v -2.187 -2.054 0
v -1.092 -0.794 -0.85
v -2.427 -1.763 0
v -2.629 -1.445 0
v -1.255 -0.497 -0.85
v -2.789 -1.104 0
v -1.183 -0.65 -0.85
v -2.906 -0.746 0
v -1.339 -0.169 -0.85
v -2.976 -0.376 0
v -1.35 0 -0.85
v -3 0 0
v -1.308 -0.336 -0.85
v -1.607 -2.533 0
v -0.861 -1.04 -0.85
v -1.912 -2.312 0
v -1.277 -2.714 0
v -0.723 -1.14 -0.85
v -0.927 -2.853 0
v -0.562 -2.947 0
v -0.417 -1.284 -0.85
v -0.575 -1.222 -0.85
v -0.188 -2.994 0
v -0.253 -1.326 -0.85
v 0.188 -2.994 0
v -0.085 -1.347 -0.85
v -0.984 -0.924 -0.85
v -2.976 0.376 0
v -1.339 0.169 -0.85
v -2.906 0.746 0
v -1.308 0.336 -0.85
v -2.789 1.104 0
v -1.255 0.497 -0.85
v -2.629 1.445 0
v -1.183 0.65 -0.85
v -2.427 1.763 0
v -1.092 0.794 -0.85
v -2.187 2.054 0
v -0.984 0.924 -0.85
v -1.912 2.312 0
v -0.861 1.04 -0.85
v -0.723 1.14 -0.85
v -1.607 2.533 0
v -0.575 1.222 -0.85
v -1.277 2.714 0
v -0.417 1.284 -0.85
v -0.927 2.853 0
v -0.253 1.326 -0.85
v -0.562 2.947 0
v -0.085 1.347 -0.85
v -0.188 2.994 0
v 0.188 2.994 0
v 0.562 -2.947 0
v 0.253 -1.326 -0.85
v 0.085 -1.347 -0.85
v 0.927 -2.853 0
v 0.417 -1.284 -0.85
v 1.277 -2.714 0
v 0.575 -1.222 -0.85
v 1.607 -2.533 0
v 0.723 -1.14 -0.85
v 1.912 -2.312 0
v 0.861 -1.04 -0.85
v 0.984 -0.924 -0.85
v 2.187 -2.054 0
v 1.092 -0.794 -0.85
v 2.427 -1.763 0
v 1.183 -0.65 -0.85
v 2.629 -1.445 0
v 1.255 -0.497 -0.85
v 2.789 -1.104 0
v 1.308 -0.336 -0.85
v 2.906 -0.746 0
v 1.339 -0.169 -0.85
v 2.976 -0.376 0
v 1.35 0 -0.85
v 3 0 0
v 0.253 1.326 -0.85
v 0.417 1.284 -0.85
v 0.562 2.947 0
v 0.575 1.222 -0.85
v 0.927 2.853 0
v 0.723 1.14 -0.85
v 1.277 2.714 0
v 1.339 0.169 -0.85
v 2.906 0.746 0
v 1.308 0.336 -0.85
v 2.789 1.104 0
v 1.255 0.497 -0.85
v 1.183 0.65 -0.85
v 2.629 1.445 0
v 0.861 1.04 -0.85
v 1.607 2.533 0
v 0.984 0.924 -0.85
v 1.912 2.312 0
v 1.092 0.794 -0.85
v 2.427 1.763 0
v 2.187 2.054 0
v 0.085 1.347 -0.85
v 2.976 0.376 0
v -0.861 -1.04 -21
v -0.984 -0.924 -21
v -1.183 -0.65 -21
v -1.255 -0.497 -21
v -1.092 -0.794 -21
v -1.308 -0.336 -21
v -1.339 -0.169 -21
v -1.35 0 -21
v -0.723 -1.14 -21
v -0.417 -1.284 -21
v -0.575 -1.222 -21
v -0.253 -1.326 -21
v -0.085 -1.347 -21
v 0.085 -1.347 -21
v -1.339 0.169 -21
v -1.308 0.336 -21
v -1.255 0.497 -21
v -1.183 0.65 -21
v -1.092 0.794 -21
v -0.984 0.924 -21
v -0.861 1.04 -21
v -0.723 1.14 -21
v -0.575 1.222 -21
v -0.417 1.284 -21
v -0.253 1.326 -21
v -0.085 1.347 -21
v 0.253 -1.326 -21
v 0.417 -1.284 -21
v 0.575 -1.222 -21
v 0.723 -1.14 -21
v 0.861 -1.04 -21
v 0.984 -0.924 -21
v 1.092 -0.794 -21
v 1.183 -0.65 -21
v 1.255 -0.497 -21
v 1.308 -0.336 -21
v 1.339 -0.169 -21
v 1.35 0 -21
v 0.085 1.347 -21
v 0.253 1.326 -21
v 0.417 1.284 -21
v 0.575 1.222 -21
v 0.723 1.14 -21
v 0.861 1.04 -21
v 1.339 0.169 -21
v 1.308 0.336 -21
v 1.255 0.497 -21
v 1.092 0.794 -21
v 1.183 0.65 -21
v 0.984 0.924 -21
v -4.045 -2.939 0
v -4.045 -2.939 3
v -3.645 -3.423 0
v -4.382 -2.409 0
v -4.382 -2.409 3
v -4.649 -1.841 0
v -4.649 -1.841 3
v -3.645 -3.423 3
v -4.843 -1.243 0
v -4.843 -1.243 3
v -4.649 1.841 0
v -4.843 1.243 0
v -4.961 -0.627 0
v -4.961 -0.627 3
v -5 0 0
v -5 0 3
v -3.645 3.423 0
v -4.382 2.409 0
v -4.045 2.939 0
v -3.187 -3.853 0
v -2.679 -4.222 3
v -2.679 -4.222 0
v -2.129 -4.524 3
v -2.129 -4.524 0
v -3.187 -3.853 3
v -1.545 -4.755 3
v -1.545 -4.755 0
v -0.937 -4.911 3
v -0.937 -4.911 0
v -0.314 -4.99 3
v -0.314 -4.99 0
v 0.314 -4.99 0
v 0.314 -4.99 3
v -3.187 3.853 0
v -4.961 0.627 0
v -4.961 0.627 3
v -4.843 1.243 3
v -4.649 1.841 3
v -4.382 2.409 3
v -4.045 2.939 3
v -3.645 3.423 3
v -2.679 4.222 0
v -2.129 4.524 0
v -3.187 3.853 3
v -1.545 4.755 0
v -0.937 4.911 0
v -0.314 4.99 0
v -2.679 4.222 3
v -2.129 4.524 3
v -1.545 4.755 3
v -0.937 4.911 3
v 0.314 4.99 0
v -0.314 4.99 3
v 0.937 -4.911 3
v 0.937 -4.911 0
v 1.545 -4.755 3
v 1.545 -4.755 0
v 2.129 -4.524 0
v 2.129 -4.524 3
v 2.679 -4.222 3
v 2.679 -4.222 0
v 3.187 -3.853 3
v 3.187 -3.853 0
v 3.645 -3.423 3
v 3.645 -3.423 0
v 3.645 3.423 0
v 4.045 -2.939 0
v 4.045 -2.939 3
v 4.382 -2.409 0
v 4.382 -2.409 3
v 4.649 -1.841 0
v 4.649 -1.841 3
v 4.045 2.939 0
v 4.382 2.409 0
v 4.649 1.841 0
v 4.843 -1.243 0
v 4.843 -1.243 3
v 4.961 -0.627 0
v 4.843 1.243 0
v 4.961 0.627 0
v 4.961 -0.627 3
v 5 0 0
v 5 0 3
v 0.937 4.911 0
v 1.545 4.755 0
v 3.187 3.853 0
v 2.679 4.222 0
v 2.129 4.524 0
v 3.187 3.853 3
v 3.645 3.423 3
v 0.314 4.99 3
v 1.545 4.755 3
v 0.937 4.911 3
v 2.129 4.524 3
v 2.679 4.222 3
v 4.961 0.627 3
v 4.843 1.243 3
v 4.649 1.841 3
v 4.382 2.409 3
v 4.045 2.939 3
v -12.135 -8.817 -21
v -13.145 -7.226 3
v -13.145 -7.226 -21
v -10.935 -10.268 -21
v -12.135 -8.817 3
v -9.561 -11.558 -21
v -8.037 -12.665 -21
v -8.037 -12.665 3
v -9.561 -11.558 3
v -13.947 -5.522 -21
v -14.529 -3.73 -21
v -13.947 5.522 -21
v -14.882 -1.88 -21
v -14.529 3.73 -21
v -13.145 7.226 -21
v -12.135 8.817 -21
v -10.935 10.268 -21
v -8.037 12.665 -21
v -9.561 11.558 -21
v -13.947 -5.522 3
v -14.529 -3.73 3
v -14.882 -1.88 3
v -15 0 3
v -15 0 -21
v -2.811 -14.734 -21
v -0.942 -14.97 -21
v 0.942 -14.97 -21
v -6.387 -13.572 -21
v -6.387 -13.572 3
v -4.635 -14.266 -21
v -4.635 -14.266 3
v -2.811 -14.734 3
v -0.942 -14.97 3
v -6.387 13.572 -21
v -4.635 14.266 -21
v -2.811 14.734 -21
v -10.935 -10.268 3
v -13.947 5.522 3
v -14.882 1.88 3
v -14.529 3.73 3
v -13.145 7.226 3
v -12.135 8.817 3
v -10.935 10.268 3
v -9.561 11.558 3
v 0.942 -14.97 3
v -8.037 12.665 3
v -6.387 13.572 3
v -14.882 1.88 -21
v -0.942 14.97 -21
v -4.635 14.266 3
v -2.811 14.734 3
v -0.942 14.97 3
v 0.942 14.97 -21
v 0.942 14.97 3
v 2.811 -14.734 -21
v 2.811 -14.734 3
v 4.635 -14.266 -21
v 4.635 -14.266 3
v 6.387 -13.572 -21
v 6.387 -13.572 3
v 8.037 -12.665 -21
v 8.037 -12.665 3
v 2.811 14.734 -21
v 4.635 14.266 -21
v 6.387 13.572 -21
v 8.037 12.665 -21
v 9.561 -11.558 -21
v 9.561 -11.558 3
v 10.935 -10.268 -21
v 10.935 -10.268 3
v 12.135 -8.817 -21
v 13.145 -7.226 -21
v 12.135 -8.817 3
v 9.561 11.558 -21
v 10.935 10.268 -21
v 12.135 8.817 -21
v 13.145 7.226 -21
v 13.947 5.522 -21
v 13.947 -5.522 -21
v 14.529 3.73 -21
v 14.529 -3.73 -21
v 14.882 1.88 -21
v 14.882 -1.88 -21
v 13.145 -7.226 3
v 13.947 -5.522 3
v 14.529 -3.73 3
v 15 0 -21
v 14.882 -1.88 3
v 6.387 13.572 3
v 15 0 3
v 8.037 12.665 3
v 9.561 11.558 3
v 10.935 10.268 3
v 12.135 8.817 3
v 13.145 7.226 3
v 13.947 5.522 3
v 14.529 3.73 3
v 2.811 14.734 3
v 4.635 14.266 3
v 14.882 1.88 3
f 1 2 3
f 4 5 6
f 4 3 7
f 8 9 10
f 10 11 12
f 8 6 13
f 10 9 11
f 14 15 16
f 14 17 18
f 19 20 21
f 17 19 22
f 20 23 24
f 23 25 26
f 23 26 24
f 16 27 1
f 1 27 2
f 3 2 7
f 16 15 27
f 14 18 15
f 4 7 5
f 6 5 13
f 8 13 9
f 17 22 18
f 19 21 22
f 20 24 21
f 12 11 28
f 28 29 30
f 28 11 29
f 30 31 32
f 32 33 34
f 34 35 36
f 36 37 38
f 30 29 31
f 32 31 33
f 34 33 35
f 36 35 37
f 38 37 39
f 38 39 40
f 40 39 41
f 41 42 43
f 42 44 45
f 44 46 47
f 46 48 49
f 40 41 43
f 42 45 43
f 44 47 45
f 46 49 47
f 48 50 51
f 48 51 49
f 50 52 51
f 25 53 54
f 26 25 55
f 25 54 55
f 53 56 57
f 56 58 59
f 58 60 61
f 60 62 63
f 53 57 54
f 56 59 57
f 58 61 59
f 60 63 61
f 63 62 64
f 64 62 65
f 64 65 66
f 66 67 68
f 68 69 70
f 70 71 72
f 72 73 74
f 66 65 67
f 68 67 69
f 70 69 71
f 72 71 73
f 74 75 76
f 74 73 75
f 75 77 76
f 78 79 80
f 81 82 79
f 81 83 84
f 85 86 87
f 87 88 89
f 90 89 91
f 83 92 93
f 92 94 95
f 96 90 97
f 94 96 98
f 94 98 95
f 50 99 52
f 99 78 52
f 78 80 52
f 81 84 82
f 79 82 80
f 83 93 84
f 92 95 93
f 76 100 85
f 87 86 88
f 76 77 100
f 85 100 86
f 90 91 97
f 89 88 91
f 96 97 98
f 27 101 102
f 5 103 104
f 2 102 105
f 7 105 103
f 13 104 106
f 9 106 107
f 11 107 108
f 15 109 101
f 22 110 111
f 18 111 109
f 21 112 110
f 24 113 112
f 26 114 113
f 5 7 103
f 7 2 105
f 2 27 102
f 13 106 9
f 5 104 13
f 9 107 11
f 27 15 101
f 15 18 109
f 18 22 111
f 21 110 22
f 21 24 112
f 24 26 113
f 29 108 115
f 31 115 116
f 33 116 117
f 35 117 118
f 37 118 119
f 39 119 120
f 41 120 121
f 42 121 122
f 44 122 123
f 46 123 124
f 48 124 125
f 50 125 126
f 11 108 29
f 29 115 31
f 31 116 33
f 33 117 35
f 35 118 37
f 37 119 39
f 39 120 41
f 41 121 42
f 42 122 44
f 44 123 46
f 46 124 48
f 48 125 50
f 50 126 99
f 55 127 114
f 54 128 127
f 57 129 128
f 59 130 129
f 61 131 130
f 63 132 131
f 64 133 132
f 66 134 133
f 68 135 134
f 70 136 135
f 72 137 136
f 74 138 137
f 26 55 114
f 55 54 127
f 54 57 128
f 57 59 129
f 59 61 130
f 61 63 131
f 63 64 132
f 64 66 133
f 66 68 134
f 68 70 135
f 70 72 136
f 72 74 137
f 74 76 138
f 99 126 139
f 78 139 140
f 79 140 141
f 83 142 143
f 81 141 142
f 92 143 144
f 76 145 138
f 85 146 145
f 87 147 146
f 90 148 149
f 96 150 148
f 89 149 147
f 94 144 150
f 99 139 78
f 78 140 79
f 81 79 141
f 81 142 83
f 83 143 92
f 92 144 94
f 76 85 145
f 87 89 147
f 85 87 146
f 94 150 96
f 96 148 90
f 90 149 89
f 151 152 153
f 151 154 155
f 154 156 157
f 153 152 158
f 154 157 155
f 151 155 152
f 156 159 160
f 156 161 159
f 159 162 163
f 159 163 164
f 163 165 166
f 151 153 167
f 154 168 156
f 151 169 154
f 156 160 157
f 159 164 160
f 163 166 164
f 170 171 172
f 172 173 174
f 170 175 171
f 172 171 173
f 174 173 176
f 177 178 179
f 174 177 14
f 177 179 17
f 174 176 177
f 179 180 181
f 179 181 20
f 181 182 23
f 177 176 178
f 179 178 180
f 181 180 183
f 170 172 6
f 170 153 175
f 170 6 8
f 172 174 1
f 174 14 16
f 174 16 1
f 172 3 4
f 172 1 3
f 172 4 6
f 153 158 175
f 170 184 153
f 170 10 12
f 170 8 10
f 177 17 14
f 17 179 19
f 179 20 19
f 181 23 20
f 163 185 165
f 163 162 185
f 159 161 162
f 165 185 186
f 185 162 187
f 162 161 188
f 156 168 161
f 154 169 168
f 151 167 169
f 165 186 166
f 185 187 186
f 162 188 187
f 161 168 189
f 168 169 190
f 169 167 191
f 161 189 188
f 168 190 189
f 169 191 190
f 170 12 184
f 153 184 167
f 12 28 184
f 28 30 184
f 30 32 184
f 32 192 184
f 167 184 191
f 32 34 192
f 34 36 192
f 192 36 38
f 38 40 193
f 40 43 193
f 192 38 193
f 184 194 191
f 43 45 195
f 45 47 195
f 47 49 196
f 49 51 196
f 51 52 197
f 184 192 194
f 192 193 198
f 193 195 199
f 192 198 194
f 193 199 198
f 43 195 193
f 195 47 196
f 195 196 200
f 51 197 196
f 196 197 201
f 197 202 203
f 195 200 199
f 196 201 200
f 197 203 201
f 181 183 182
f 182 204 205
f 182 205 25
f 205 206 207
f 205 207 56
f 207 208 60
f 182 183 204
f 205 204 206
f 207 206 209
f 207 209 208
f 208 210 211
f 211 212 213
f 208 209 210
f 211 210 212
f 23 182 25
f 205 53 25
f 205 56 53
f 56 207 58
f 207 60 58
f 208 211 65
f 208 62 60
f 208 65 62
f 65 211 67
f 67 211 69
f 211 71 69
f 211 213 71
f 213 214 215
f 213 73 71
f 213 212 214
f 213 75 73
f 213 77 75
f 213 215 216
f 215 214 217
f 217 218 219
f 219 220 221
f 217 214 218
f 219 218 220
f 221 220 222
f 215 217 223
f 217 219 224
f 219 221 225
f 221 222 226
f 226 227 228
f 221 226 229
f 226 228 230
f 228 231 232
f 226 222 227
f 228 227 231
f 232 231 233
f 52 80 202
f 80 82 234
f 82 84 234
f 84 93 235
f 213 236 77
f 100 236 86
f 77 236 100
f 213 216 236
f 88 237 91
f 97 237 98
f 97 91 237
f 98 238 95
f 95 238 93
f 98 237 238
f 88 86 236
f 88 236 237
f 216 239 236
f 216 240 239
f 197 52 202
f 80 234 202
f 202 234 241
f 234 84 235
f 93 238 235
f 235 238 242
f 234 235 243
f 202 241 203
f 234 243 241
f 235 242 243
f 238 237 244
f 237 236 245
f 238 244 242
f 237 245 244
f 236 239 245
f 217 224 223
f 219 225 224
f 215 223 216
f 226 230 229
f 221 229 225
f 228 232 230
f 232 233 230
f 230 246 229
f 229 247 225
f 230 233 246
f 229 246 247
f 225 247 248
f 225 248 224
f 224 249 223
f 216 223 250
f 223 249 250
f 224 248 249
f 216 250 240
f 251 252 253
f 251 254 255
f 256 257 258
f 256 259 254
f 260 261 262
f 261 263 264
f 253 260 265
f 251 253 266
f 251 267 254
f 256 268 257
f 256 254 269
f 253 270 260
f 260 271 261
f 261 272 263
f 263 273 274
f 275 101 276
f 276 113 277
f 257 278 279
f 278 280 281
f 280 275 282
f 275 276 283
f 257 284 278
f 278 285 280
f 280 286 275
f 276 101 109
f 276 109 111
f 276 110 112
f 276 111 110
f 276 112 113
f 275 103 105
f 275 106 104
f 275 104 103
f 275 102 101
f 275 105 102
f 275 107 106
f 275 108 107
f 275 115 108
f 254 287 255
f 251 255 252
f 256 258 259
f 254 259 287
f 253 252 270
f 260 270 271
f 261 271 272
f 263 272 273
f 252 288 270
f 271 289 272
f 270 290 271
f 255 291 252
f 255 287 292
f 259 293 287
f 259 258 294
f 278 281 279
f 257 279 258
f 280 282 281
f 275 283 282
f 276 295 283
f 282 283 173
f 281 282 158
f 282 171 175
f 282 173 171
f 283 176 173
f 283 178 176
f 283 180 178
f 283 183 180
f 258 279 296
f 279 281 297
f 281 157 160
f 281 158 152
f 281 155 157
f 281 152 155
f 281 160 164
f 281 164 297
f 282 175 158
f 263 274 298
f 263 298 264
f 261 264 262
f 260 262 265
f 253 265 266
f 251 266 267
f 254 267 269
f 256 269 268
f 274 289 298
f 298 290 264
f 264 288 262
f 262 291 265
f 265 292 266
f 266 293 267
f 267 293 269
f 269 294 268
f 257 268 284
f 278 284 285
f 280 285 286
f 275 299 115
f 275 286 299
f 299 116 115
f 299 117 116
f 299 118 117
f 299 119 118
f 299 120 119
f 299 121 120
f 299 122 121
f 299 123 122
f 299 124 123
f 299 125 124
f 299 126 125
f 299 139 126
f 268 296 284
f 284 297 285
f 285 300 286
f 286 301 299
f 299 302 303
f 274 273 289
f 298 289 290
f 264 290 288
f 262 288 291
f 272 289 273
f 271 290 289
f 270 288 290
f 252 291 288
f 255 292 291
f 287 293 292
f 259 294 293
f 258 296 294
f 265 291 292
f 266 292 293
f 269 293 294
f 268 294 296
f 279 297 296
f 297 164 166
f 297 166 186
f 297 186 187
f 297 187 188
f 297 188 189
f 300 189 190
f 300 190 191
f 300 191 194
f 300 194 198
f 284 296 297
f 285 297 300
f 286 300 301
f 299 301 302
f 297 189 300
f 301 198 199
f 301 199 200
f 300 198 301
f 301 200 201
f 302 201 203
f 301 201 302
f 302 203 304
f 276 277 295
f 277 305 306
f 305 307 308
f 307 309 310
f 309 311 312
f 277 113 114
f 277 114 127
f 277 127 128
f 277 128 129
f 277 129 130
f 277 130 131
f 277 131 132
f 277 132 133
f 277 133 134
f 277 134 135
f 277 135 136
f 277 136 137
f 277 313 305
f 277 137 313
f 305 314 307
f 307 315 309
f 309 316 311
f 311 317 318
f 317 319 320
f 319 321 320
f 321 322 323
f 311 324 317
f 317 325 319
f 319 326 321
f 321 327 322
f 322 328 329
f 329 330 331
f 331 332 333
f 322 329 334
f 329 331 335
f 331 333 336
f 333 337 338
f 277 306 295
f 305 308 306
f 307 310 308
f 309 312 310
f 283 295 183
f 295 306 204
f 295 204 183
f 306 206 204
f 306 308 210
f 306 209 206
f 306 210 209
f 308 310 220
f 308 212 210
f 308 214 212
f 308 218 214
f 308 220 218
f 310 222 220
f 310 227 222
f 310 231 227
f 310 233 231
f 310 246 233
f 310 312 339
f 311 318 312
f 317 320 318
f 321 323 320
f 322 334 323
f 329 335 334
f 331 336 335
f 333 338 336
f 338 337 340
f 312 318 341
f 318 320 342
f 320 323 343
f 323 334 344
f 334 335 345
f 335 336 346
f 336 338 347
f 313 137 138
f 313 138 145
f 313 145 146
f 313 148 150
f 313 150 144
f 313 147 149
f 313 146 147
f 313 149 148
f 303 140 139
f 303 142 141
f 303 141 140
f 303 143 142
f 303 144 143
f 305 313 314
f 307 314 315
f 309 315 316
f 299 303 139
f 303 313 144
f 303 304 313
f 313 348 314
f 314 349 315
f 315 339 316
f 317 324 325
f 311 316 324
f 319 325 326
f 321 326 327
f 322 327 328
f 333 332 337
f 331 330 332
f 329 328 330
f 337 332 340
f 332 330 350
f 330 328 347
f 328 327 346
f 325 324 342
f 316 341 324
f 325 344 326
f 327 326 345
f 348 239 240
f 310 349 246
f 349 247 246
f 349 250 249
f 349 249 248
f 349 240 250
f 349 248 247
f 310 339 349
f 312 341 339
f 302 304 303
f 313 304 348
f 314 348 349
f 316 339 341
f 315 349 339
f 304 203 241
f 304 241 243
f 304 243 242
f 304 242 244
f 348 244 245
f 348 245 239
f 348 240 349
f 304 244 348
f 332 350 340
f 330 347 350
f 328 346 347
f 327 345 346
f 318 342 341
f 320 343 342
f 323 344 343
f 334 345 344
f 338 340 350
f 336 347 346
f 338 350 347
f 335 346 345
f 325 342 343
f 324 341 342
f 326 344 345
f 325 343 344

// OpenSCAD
$fn = 50;

difference() {
	union() {
		translate(v = [0, 0, -21.0]) {
			cylinder(h = 24, r = 15.0);
		}
	}
	union() {
		translate(v = [0, 0, 0]) {
			rotate(a = [0, 0, 0]) {
				difference() {
					union() {
						translate(v = [0, 0, -24.0]) {
							cylinder(h = 24, r = 1.0);
						}
						translate(v = [0, 0, -0.85]) {
							cylinder(h = 0.85, r1 = 1.35, r2 = 3.0);
						}
						translate(v = [0, 0, -24.0]) {
							cylinder(h = 24, r = 1.35);
						}
						translate(v = [0, 0, -24.0]) {
							cylinder(h = 24, r = 1.0);
						}
					}
					union();
				}
			}
		}
		#cylinder(h = 3, r = 5.0);
	}
}
